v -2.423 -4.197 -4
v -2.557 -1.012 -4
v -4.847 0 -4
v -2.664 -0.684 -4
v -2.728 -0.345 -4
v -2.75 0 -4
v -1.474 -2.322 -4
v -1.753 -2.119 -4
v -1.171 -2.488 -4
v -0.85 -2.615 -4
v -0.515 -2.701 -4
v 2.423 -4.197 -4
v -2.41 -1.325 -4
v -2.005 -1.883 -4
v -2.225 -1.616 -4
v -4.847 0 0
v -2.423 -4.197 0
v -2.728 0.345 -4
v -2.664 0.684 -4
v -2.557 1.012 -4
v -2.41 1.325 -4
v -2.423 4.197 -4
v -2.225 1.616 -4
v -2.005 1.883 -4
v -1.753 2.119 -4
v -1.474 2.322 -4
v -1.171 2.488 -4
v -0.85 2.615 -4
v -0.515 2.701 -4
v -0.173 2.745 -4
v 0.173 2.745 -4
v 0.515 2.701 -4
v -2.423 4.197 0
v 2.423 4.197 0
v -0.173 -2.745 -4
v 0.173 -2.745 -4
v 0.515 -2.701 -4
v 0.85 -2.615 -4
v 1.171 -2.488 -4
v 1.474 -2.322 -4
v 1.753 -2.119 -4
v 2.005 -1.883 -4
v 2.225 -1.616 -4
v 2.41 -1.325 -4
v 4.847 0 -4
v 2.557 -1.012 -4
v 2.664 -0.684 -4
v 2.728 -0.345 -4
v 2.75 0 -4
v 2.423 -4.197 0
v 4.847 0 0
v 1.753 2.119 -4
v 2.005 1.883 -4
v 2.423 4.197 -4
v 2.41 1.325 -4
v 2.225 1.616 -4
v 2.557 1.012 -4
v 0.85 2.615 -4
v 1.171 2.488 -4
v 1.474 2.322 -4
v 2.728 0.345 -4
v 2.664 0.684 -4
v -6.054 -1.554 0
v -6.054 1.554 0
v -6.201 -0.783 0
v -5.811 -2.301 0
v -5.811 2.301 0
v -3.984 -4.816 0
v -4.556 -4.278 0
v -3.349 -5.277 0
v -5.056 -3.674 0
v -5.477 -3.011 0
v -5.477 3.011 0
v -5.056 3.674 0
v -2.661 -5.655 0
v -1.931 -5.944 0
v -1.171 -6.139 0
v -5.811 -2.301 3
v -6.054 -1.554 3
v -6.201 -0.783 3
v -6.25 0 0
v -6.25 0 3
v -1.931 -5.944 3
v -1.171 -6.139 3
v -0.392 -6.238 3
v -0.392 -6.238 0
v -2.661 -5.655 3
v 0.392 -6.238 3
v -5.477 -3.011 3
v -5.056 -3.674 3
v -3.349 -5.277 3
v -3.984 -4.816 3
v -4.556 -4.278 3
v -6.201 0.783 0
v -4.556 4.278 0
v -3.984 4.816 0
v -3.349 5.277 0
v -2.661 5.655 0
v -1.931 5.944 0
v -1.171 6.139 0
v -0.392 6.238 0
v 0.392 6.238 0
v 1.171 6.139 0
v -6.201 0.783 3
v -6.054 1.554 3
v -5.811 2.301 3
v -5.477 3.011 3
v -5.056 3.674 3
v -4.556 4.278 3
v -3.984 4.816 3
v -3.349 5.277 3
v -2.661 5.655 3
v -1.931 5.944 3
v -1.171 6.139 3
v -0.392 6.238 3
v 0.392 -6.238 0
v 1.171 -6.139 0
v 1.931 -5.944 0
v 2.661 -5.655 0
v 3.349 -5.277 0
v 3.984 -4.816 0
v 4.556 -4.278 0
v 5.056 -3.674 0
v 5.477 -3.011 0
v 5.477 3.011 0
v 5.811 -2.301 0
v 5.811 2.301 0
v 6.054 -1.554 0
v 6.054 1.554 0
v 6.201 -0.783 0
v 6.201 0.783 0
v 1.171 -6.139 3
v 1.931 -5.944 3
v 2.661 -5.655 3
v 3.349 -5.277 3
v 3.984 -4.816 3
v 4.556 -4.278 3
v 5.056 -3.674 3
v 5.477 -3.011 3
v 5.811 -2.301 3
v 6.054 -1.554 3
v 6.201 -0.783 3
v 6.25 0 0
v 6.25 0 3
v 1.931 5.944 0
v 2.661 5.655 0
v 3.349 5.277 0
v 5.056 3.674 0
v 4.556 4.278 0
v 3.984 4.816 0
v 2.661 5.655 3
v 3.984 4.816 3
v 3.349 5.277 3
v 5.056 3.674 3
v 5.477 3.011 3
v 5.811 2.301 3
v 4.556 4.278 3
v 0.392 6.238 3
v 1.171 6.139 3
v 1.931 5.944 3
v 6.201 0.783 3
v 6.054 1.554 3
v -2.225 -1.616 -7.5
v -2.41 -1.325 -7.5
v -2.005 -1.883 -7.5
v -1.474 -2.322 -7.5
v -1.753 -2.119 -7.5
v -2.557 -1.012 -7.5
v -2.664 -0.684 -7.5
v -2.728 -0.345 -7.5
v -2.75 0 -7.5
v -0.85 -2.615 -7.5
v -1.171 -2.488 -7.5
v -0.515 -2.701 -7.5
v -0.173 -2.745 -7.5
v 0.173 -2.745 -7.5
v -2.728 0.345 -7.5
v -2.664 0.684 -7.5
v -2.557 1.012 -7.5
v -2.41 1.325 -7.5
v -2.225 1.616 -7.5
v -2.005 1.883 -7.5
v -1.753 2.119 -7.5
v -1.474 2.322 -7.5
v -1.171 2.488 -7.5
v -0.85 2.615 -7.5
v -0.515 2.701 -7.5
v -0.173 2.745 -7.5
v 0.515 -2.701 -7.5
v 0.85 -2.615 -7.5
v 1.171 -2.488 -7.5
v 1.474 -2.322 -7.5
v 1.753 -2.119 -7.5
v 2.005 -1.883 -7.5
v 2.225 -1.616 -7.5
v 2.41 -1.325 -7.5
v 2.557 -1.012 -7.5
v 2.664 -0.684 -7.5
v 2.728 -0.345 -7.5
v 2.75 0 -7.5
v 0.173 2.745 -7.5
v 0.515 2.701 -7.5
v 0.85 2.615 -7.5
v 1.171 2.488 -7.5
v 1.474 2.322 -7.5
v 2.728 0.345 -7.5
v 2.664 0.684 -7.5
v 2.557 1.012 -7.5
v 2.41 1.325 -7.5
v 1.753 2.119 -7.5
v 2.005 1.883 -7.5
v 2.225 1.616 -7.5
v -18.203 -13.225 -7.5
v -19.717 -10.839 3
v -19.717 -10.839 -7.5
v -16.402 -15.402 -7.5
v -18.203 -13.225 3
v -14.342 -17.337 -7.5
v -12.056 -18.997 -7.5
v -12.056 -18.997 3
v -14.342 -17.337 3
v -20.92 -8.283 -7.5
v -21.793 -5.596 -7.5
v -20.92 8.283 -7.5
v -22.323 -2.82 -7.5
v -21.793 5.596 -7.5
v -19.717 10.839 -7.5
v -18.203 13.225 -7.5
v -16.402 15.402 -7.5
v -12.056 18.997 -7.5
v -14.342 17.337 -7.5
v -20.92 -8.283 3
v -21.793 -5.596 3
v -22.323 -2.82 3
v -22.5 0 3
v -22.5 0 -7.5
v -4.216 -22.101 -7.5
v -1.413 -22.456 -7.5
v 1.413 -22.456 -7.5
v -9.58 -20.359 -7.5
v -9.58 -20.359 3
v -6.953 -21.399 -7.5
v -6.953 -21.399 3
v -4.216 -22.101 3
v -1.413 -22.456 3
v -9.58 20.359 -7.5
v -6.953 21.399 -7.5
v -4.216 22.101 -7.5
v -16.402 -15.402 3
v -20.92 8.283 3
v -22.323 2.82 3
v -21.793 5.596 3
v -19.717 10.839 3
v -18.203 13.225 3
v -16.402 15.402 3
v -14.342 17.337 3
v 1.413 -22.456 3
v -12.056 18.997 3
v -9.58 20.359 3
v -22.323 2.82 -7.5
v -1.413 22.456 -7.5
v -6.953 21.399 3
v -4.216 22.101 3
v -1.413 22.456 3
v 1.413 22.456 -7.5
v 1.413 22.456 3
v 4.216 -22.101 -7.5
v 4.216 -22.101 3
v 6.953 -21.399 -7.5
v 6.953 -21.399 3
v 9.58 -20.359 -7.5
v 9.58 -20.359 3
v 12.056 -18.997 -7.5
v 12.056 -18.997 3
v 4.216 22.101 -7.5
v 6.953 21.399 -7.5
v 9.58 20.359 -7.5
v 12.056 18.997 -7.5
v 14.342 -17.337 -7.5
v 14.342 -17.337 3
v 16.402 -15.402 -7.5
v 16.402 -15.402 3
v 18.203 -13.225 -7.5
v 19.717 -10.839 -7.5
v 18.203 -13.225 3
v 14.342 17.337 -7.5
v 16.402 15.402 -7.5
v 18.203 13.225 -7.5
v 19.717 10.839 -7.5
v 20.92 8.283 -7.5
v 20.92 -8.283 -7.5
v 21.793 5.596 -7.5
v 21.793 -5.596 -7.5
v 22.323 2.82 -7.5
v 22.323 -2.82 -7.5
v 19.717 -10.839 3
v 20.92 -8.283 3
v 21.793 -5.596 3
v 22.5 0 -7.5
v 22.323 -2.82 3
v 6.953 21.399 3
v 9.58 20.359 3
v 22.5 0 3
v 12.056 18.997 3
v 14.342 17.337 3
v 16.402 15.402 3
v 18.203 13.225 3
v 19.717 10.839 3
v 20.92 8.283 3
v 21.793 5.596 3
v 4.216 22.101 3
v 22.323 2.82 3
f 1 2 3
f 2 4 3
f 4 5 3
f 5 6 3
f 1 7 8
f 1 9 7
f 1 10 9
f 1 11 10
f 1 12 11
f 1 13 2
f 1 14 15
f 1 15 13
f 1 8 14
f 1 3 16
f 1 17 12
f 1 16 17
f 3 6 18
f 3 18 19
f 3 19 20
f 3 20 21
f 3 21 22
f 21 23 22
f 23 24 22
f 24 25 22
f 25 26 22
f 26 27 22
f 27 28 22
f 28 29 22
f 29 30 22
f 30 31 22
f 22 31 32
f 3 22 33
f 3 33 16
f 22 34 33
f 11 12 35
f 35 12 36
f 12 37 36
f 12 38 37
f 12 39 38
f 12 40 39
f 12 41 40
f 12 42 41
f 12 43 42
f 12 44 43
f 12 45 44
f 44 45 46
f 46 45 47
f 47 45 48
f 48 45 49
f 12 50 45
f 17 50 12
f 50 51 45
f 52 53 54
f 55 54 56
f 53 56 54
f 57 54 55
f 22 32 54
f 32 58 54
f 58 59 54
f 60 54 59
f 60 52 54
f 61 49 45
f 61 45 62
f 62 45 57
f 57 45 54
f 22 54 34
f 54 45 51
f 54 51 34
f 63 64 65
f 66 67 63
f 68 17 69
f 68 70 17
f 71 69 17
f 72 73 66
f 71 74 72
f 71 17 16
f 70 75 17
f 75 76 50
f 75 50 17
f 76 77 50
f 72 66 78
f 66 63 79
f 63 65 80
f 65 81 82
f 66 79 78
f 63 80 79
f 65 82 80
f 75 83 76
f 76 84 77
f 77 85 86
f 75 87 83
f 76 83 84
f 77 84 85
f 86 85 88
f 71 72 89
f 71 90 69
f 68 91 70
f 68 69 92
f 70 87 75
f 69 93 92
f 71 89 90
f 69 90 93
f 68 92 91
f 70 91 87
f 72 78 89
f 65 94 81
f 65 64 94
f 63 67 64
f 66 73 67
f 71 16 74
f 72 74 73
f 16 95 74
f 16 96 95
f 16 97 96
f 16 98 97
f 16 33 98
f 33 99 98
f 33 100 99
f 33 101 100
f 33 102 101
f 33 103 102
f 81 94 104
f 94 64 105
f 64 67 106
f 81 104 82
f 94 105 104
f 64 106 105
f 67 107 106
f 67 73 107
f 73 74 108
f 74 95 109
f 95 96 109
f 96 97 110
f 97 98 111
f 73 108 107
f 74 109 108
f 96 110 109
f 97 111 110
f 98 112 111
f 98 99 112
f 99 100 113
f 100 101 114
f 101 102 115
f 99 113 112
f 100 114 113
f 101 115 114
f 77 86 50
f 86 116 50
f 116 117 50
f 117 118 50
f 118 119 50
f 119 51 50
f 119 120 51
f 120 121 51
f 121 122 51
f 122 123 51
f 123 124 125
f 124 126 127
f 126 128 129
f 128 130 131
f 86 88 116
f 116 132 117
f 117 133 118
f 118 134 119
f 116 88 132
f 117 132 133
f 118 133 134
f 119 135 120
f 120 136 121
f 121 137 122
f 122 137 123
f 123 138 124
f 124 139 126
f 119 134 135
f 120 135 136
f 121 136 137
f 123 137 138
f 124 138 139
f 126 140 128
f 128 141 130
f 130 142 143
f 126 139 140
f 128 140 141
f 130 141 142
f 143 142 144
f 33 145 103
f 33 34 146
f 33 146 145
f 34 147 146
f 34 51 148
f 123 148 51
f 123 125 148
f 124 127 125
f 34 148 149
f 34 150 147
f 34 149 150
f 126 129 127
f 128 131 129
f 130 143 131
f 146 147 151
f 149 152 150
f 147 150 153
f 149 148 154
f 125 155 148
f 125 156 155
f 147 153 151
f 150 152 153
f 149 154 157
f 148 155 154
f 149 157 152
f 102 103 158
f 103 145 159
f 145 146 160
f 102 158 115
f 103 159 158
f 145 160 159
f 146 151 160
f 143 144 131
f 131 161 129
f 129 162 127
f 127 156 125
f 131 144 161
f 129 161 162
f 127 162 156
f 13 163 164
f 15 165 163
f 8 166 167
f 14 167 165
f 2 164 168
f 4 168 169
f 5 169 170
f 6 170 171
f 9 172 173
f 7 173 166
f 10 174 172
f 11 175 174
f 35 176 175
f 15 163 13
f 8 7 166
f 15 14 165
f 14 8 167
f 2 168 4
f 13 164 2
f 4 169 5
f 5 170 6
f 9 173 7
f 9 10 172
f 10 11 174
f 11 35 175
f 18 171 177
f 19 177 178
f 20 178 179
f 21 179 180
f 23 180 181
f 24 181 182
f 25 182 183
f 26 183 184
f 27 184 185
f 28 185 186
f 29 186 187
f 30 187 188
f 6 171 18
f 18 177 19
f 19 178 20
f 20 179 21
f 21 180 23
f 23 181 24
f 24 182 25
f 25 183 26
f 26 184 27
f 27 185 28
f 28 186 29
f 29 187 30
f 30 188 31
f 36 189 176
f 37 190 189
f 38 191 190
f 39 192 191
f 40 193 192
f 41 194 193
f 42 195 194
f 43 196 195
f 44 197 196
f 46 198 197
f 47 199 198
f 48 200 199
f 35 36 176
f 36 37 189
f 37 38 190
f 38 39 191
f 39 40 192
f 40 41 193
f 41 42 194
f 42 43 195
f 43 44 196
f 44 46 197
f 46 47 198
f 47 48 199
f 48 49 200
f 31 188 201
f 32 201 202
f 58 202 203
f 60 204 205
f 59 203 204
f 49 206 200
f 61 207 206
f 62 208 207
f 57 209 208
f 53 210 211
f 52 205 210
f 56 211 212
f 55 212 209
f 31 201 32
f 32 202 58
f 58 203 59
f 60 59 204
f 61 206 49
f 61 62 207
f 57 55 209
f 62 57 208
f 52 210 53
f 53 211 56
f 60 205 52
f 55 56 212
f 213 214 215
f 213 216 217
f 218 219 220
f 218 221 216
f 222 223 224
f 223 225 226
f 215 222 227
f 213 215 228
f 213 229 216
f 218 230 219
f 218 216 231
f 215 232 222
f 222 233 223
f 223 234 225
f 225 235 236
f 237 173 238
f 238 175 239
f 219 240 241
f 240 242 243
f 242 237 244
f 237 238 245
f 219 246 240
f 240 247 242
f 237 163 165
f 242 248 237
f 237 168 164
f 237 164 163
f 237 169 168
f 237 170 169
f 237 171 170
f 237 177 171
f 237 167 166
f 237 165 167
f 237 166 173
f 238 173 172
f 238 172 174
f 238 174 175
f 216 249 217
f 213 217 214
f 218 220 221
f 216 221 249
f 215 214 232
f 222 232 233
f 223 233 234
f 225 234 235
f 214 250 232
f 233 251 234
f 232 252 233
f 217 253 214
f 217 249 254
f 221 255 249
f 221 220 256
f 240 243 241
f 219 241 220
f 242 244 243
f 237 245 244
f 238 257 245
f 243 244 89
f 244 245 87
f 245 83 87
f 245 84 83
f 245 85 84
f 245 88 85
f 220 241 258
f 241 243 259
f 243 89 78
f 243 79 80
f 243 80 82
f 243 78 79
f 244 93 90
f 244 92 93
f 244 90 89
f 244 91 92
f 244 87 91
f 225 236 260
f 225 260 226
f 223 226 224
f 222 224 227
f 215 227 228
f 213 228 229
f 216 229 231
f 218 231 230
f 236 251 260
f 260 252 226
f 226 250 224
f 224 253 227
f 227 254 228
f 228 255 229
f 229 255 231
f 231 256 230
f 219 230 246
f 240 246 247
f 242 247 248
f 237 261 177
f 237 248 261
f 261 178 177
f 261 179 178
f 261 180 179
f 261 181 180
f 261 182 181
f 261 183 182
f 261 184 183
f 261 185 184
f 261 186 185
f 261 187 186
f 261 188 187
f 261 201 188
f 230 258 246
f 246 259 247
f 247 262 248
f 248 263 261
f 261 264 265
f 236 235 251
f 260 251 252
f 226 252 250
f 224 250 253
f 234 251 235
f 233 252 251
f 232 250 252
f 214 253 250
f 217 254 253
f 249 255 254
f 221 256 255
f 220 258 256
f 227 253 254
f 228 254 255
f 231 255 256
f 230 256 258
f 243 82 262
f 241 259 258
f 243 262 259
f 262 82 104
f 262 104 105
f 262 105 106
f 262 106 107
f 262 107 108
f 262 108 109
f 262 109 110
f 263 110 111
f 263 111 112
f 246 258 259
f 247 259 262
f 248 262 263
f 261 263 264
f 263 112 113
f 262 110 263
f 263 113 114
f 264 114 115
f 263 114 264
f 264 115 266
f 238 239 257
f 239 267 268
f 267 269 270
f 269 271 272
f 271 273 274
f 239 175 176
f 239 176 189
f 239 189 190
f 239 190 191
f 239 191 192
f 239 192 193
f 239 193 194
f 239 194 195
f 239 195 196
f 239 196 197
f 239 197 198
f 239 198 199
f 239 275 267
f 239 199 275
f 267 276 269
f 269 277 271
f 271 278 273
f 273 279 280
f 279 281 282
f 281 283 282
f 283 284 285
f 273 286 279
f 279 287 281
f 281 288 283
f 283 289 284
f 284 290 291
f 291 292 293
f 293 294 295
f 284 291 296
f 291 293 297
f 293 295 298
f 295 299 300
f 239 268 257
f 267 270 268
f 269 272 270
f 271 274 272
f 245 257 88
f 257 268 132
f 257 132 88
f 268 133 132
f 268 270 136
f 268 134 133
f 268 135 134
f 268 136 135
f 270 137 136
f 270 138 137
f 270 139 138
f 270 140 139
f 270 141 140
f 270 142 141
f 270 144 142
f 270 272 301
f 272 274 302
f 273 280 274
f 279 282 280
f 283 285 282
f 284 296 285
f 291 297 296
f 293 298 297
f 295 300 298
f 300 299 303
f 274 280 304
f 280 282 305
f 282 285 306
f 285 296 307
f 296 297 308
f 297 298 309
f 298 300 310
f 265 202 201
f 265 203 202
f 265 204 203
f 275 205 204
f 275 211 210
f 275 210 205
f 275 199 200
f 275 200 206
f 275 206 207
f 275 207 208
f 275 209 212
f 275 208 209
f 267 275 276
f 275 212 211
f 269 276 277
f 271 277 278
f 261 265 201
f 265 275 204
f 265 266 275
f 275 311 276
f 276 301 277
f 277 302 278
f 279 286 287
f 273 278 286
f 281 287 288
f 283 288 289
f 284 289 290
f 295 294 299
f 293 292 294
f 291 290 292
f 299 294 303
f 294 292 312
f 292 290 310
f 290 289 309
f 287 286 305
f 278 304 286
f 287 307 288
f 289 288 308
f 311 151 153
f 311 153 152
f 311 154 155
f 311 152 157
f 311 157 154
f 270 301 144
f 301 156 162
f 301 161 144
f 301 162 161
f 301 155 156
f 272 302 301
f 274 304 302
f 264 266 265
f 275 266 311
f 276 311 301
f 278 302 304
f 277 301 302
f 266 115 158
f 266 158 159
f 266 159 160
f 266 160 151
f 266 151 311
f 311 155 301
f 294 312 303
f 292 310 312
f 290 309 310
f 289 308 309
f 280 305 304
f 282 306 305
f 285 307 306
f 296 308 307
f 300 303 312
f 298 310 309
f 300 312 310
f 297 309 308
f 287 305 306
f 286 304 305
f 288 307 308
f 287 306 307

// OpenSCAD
$fn = 50;

difference() {
	union() {
		translate(v = [0, 0, -7.5]) {
			cylinder(h = 10.5, r = 22.5);
		}
	}
	union() {
		translate(v = [0, 0, 0]) {
			rotate(a = [0, 0, 0]) {
				difference() {
					union() {
						translate(v = [0, 0, -4]) {
							linear_extrude(height = 4) {
								polygon(points = [[4.8468, 0.0], [2.4234000000000004, 4.197451927062417], [-2.423399999999999, 4.197451927062417], [-4.8468, 5.935618106107392e-16], [-2.423400000000002, -4.197451927062416], [2.423399999999997, -4.197451927062419]]);
							}
						}
					}
					union();
				}
			}
		}
		#cylinder(h = 3, r = 6.25);
		#translate(v = [0, 0, -100.0]) {
			cylinder(h = 200, r = 2.75);
		}
	}
}
